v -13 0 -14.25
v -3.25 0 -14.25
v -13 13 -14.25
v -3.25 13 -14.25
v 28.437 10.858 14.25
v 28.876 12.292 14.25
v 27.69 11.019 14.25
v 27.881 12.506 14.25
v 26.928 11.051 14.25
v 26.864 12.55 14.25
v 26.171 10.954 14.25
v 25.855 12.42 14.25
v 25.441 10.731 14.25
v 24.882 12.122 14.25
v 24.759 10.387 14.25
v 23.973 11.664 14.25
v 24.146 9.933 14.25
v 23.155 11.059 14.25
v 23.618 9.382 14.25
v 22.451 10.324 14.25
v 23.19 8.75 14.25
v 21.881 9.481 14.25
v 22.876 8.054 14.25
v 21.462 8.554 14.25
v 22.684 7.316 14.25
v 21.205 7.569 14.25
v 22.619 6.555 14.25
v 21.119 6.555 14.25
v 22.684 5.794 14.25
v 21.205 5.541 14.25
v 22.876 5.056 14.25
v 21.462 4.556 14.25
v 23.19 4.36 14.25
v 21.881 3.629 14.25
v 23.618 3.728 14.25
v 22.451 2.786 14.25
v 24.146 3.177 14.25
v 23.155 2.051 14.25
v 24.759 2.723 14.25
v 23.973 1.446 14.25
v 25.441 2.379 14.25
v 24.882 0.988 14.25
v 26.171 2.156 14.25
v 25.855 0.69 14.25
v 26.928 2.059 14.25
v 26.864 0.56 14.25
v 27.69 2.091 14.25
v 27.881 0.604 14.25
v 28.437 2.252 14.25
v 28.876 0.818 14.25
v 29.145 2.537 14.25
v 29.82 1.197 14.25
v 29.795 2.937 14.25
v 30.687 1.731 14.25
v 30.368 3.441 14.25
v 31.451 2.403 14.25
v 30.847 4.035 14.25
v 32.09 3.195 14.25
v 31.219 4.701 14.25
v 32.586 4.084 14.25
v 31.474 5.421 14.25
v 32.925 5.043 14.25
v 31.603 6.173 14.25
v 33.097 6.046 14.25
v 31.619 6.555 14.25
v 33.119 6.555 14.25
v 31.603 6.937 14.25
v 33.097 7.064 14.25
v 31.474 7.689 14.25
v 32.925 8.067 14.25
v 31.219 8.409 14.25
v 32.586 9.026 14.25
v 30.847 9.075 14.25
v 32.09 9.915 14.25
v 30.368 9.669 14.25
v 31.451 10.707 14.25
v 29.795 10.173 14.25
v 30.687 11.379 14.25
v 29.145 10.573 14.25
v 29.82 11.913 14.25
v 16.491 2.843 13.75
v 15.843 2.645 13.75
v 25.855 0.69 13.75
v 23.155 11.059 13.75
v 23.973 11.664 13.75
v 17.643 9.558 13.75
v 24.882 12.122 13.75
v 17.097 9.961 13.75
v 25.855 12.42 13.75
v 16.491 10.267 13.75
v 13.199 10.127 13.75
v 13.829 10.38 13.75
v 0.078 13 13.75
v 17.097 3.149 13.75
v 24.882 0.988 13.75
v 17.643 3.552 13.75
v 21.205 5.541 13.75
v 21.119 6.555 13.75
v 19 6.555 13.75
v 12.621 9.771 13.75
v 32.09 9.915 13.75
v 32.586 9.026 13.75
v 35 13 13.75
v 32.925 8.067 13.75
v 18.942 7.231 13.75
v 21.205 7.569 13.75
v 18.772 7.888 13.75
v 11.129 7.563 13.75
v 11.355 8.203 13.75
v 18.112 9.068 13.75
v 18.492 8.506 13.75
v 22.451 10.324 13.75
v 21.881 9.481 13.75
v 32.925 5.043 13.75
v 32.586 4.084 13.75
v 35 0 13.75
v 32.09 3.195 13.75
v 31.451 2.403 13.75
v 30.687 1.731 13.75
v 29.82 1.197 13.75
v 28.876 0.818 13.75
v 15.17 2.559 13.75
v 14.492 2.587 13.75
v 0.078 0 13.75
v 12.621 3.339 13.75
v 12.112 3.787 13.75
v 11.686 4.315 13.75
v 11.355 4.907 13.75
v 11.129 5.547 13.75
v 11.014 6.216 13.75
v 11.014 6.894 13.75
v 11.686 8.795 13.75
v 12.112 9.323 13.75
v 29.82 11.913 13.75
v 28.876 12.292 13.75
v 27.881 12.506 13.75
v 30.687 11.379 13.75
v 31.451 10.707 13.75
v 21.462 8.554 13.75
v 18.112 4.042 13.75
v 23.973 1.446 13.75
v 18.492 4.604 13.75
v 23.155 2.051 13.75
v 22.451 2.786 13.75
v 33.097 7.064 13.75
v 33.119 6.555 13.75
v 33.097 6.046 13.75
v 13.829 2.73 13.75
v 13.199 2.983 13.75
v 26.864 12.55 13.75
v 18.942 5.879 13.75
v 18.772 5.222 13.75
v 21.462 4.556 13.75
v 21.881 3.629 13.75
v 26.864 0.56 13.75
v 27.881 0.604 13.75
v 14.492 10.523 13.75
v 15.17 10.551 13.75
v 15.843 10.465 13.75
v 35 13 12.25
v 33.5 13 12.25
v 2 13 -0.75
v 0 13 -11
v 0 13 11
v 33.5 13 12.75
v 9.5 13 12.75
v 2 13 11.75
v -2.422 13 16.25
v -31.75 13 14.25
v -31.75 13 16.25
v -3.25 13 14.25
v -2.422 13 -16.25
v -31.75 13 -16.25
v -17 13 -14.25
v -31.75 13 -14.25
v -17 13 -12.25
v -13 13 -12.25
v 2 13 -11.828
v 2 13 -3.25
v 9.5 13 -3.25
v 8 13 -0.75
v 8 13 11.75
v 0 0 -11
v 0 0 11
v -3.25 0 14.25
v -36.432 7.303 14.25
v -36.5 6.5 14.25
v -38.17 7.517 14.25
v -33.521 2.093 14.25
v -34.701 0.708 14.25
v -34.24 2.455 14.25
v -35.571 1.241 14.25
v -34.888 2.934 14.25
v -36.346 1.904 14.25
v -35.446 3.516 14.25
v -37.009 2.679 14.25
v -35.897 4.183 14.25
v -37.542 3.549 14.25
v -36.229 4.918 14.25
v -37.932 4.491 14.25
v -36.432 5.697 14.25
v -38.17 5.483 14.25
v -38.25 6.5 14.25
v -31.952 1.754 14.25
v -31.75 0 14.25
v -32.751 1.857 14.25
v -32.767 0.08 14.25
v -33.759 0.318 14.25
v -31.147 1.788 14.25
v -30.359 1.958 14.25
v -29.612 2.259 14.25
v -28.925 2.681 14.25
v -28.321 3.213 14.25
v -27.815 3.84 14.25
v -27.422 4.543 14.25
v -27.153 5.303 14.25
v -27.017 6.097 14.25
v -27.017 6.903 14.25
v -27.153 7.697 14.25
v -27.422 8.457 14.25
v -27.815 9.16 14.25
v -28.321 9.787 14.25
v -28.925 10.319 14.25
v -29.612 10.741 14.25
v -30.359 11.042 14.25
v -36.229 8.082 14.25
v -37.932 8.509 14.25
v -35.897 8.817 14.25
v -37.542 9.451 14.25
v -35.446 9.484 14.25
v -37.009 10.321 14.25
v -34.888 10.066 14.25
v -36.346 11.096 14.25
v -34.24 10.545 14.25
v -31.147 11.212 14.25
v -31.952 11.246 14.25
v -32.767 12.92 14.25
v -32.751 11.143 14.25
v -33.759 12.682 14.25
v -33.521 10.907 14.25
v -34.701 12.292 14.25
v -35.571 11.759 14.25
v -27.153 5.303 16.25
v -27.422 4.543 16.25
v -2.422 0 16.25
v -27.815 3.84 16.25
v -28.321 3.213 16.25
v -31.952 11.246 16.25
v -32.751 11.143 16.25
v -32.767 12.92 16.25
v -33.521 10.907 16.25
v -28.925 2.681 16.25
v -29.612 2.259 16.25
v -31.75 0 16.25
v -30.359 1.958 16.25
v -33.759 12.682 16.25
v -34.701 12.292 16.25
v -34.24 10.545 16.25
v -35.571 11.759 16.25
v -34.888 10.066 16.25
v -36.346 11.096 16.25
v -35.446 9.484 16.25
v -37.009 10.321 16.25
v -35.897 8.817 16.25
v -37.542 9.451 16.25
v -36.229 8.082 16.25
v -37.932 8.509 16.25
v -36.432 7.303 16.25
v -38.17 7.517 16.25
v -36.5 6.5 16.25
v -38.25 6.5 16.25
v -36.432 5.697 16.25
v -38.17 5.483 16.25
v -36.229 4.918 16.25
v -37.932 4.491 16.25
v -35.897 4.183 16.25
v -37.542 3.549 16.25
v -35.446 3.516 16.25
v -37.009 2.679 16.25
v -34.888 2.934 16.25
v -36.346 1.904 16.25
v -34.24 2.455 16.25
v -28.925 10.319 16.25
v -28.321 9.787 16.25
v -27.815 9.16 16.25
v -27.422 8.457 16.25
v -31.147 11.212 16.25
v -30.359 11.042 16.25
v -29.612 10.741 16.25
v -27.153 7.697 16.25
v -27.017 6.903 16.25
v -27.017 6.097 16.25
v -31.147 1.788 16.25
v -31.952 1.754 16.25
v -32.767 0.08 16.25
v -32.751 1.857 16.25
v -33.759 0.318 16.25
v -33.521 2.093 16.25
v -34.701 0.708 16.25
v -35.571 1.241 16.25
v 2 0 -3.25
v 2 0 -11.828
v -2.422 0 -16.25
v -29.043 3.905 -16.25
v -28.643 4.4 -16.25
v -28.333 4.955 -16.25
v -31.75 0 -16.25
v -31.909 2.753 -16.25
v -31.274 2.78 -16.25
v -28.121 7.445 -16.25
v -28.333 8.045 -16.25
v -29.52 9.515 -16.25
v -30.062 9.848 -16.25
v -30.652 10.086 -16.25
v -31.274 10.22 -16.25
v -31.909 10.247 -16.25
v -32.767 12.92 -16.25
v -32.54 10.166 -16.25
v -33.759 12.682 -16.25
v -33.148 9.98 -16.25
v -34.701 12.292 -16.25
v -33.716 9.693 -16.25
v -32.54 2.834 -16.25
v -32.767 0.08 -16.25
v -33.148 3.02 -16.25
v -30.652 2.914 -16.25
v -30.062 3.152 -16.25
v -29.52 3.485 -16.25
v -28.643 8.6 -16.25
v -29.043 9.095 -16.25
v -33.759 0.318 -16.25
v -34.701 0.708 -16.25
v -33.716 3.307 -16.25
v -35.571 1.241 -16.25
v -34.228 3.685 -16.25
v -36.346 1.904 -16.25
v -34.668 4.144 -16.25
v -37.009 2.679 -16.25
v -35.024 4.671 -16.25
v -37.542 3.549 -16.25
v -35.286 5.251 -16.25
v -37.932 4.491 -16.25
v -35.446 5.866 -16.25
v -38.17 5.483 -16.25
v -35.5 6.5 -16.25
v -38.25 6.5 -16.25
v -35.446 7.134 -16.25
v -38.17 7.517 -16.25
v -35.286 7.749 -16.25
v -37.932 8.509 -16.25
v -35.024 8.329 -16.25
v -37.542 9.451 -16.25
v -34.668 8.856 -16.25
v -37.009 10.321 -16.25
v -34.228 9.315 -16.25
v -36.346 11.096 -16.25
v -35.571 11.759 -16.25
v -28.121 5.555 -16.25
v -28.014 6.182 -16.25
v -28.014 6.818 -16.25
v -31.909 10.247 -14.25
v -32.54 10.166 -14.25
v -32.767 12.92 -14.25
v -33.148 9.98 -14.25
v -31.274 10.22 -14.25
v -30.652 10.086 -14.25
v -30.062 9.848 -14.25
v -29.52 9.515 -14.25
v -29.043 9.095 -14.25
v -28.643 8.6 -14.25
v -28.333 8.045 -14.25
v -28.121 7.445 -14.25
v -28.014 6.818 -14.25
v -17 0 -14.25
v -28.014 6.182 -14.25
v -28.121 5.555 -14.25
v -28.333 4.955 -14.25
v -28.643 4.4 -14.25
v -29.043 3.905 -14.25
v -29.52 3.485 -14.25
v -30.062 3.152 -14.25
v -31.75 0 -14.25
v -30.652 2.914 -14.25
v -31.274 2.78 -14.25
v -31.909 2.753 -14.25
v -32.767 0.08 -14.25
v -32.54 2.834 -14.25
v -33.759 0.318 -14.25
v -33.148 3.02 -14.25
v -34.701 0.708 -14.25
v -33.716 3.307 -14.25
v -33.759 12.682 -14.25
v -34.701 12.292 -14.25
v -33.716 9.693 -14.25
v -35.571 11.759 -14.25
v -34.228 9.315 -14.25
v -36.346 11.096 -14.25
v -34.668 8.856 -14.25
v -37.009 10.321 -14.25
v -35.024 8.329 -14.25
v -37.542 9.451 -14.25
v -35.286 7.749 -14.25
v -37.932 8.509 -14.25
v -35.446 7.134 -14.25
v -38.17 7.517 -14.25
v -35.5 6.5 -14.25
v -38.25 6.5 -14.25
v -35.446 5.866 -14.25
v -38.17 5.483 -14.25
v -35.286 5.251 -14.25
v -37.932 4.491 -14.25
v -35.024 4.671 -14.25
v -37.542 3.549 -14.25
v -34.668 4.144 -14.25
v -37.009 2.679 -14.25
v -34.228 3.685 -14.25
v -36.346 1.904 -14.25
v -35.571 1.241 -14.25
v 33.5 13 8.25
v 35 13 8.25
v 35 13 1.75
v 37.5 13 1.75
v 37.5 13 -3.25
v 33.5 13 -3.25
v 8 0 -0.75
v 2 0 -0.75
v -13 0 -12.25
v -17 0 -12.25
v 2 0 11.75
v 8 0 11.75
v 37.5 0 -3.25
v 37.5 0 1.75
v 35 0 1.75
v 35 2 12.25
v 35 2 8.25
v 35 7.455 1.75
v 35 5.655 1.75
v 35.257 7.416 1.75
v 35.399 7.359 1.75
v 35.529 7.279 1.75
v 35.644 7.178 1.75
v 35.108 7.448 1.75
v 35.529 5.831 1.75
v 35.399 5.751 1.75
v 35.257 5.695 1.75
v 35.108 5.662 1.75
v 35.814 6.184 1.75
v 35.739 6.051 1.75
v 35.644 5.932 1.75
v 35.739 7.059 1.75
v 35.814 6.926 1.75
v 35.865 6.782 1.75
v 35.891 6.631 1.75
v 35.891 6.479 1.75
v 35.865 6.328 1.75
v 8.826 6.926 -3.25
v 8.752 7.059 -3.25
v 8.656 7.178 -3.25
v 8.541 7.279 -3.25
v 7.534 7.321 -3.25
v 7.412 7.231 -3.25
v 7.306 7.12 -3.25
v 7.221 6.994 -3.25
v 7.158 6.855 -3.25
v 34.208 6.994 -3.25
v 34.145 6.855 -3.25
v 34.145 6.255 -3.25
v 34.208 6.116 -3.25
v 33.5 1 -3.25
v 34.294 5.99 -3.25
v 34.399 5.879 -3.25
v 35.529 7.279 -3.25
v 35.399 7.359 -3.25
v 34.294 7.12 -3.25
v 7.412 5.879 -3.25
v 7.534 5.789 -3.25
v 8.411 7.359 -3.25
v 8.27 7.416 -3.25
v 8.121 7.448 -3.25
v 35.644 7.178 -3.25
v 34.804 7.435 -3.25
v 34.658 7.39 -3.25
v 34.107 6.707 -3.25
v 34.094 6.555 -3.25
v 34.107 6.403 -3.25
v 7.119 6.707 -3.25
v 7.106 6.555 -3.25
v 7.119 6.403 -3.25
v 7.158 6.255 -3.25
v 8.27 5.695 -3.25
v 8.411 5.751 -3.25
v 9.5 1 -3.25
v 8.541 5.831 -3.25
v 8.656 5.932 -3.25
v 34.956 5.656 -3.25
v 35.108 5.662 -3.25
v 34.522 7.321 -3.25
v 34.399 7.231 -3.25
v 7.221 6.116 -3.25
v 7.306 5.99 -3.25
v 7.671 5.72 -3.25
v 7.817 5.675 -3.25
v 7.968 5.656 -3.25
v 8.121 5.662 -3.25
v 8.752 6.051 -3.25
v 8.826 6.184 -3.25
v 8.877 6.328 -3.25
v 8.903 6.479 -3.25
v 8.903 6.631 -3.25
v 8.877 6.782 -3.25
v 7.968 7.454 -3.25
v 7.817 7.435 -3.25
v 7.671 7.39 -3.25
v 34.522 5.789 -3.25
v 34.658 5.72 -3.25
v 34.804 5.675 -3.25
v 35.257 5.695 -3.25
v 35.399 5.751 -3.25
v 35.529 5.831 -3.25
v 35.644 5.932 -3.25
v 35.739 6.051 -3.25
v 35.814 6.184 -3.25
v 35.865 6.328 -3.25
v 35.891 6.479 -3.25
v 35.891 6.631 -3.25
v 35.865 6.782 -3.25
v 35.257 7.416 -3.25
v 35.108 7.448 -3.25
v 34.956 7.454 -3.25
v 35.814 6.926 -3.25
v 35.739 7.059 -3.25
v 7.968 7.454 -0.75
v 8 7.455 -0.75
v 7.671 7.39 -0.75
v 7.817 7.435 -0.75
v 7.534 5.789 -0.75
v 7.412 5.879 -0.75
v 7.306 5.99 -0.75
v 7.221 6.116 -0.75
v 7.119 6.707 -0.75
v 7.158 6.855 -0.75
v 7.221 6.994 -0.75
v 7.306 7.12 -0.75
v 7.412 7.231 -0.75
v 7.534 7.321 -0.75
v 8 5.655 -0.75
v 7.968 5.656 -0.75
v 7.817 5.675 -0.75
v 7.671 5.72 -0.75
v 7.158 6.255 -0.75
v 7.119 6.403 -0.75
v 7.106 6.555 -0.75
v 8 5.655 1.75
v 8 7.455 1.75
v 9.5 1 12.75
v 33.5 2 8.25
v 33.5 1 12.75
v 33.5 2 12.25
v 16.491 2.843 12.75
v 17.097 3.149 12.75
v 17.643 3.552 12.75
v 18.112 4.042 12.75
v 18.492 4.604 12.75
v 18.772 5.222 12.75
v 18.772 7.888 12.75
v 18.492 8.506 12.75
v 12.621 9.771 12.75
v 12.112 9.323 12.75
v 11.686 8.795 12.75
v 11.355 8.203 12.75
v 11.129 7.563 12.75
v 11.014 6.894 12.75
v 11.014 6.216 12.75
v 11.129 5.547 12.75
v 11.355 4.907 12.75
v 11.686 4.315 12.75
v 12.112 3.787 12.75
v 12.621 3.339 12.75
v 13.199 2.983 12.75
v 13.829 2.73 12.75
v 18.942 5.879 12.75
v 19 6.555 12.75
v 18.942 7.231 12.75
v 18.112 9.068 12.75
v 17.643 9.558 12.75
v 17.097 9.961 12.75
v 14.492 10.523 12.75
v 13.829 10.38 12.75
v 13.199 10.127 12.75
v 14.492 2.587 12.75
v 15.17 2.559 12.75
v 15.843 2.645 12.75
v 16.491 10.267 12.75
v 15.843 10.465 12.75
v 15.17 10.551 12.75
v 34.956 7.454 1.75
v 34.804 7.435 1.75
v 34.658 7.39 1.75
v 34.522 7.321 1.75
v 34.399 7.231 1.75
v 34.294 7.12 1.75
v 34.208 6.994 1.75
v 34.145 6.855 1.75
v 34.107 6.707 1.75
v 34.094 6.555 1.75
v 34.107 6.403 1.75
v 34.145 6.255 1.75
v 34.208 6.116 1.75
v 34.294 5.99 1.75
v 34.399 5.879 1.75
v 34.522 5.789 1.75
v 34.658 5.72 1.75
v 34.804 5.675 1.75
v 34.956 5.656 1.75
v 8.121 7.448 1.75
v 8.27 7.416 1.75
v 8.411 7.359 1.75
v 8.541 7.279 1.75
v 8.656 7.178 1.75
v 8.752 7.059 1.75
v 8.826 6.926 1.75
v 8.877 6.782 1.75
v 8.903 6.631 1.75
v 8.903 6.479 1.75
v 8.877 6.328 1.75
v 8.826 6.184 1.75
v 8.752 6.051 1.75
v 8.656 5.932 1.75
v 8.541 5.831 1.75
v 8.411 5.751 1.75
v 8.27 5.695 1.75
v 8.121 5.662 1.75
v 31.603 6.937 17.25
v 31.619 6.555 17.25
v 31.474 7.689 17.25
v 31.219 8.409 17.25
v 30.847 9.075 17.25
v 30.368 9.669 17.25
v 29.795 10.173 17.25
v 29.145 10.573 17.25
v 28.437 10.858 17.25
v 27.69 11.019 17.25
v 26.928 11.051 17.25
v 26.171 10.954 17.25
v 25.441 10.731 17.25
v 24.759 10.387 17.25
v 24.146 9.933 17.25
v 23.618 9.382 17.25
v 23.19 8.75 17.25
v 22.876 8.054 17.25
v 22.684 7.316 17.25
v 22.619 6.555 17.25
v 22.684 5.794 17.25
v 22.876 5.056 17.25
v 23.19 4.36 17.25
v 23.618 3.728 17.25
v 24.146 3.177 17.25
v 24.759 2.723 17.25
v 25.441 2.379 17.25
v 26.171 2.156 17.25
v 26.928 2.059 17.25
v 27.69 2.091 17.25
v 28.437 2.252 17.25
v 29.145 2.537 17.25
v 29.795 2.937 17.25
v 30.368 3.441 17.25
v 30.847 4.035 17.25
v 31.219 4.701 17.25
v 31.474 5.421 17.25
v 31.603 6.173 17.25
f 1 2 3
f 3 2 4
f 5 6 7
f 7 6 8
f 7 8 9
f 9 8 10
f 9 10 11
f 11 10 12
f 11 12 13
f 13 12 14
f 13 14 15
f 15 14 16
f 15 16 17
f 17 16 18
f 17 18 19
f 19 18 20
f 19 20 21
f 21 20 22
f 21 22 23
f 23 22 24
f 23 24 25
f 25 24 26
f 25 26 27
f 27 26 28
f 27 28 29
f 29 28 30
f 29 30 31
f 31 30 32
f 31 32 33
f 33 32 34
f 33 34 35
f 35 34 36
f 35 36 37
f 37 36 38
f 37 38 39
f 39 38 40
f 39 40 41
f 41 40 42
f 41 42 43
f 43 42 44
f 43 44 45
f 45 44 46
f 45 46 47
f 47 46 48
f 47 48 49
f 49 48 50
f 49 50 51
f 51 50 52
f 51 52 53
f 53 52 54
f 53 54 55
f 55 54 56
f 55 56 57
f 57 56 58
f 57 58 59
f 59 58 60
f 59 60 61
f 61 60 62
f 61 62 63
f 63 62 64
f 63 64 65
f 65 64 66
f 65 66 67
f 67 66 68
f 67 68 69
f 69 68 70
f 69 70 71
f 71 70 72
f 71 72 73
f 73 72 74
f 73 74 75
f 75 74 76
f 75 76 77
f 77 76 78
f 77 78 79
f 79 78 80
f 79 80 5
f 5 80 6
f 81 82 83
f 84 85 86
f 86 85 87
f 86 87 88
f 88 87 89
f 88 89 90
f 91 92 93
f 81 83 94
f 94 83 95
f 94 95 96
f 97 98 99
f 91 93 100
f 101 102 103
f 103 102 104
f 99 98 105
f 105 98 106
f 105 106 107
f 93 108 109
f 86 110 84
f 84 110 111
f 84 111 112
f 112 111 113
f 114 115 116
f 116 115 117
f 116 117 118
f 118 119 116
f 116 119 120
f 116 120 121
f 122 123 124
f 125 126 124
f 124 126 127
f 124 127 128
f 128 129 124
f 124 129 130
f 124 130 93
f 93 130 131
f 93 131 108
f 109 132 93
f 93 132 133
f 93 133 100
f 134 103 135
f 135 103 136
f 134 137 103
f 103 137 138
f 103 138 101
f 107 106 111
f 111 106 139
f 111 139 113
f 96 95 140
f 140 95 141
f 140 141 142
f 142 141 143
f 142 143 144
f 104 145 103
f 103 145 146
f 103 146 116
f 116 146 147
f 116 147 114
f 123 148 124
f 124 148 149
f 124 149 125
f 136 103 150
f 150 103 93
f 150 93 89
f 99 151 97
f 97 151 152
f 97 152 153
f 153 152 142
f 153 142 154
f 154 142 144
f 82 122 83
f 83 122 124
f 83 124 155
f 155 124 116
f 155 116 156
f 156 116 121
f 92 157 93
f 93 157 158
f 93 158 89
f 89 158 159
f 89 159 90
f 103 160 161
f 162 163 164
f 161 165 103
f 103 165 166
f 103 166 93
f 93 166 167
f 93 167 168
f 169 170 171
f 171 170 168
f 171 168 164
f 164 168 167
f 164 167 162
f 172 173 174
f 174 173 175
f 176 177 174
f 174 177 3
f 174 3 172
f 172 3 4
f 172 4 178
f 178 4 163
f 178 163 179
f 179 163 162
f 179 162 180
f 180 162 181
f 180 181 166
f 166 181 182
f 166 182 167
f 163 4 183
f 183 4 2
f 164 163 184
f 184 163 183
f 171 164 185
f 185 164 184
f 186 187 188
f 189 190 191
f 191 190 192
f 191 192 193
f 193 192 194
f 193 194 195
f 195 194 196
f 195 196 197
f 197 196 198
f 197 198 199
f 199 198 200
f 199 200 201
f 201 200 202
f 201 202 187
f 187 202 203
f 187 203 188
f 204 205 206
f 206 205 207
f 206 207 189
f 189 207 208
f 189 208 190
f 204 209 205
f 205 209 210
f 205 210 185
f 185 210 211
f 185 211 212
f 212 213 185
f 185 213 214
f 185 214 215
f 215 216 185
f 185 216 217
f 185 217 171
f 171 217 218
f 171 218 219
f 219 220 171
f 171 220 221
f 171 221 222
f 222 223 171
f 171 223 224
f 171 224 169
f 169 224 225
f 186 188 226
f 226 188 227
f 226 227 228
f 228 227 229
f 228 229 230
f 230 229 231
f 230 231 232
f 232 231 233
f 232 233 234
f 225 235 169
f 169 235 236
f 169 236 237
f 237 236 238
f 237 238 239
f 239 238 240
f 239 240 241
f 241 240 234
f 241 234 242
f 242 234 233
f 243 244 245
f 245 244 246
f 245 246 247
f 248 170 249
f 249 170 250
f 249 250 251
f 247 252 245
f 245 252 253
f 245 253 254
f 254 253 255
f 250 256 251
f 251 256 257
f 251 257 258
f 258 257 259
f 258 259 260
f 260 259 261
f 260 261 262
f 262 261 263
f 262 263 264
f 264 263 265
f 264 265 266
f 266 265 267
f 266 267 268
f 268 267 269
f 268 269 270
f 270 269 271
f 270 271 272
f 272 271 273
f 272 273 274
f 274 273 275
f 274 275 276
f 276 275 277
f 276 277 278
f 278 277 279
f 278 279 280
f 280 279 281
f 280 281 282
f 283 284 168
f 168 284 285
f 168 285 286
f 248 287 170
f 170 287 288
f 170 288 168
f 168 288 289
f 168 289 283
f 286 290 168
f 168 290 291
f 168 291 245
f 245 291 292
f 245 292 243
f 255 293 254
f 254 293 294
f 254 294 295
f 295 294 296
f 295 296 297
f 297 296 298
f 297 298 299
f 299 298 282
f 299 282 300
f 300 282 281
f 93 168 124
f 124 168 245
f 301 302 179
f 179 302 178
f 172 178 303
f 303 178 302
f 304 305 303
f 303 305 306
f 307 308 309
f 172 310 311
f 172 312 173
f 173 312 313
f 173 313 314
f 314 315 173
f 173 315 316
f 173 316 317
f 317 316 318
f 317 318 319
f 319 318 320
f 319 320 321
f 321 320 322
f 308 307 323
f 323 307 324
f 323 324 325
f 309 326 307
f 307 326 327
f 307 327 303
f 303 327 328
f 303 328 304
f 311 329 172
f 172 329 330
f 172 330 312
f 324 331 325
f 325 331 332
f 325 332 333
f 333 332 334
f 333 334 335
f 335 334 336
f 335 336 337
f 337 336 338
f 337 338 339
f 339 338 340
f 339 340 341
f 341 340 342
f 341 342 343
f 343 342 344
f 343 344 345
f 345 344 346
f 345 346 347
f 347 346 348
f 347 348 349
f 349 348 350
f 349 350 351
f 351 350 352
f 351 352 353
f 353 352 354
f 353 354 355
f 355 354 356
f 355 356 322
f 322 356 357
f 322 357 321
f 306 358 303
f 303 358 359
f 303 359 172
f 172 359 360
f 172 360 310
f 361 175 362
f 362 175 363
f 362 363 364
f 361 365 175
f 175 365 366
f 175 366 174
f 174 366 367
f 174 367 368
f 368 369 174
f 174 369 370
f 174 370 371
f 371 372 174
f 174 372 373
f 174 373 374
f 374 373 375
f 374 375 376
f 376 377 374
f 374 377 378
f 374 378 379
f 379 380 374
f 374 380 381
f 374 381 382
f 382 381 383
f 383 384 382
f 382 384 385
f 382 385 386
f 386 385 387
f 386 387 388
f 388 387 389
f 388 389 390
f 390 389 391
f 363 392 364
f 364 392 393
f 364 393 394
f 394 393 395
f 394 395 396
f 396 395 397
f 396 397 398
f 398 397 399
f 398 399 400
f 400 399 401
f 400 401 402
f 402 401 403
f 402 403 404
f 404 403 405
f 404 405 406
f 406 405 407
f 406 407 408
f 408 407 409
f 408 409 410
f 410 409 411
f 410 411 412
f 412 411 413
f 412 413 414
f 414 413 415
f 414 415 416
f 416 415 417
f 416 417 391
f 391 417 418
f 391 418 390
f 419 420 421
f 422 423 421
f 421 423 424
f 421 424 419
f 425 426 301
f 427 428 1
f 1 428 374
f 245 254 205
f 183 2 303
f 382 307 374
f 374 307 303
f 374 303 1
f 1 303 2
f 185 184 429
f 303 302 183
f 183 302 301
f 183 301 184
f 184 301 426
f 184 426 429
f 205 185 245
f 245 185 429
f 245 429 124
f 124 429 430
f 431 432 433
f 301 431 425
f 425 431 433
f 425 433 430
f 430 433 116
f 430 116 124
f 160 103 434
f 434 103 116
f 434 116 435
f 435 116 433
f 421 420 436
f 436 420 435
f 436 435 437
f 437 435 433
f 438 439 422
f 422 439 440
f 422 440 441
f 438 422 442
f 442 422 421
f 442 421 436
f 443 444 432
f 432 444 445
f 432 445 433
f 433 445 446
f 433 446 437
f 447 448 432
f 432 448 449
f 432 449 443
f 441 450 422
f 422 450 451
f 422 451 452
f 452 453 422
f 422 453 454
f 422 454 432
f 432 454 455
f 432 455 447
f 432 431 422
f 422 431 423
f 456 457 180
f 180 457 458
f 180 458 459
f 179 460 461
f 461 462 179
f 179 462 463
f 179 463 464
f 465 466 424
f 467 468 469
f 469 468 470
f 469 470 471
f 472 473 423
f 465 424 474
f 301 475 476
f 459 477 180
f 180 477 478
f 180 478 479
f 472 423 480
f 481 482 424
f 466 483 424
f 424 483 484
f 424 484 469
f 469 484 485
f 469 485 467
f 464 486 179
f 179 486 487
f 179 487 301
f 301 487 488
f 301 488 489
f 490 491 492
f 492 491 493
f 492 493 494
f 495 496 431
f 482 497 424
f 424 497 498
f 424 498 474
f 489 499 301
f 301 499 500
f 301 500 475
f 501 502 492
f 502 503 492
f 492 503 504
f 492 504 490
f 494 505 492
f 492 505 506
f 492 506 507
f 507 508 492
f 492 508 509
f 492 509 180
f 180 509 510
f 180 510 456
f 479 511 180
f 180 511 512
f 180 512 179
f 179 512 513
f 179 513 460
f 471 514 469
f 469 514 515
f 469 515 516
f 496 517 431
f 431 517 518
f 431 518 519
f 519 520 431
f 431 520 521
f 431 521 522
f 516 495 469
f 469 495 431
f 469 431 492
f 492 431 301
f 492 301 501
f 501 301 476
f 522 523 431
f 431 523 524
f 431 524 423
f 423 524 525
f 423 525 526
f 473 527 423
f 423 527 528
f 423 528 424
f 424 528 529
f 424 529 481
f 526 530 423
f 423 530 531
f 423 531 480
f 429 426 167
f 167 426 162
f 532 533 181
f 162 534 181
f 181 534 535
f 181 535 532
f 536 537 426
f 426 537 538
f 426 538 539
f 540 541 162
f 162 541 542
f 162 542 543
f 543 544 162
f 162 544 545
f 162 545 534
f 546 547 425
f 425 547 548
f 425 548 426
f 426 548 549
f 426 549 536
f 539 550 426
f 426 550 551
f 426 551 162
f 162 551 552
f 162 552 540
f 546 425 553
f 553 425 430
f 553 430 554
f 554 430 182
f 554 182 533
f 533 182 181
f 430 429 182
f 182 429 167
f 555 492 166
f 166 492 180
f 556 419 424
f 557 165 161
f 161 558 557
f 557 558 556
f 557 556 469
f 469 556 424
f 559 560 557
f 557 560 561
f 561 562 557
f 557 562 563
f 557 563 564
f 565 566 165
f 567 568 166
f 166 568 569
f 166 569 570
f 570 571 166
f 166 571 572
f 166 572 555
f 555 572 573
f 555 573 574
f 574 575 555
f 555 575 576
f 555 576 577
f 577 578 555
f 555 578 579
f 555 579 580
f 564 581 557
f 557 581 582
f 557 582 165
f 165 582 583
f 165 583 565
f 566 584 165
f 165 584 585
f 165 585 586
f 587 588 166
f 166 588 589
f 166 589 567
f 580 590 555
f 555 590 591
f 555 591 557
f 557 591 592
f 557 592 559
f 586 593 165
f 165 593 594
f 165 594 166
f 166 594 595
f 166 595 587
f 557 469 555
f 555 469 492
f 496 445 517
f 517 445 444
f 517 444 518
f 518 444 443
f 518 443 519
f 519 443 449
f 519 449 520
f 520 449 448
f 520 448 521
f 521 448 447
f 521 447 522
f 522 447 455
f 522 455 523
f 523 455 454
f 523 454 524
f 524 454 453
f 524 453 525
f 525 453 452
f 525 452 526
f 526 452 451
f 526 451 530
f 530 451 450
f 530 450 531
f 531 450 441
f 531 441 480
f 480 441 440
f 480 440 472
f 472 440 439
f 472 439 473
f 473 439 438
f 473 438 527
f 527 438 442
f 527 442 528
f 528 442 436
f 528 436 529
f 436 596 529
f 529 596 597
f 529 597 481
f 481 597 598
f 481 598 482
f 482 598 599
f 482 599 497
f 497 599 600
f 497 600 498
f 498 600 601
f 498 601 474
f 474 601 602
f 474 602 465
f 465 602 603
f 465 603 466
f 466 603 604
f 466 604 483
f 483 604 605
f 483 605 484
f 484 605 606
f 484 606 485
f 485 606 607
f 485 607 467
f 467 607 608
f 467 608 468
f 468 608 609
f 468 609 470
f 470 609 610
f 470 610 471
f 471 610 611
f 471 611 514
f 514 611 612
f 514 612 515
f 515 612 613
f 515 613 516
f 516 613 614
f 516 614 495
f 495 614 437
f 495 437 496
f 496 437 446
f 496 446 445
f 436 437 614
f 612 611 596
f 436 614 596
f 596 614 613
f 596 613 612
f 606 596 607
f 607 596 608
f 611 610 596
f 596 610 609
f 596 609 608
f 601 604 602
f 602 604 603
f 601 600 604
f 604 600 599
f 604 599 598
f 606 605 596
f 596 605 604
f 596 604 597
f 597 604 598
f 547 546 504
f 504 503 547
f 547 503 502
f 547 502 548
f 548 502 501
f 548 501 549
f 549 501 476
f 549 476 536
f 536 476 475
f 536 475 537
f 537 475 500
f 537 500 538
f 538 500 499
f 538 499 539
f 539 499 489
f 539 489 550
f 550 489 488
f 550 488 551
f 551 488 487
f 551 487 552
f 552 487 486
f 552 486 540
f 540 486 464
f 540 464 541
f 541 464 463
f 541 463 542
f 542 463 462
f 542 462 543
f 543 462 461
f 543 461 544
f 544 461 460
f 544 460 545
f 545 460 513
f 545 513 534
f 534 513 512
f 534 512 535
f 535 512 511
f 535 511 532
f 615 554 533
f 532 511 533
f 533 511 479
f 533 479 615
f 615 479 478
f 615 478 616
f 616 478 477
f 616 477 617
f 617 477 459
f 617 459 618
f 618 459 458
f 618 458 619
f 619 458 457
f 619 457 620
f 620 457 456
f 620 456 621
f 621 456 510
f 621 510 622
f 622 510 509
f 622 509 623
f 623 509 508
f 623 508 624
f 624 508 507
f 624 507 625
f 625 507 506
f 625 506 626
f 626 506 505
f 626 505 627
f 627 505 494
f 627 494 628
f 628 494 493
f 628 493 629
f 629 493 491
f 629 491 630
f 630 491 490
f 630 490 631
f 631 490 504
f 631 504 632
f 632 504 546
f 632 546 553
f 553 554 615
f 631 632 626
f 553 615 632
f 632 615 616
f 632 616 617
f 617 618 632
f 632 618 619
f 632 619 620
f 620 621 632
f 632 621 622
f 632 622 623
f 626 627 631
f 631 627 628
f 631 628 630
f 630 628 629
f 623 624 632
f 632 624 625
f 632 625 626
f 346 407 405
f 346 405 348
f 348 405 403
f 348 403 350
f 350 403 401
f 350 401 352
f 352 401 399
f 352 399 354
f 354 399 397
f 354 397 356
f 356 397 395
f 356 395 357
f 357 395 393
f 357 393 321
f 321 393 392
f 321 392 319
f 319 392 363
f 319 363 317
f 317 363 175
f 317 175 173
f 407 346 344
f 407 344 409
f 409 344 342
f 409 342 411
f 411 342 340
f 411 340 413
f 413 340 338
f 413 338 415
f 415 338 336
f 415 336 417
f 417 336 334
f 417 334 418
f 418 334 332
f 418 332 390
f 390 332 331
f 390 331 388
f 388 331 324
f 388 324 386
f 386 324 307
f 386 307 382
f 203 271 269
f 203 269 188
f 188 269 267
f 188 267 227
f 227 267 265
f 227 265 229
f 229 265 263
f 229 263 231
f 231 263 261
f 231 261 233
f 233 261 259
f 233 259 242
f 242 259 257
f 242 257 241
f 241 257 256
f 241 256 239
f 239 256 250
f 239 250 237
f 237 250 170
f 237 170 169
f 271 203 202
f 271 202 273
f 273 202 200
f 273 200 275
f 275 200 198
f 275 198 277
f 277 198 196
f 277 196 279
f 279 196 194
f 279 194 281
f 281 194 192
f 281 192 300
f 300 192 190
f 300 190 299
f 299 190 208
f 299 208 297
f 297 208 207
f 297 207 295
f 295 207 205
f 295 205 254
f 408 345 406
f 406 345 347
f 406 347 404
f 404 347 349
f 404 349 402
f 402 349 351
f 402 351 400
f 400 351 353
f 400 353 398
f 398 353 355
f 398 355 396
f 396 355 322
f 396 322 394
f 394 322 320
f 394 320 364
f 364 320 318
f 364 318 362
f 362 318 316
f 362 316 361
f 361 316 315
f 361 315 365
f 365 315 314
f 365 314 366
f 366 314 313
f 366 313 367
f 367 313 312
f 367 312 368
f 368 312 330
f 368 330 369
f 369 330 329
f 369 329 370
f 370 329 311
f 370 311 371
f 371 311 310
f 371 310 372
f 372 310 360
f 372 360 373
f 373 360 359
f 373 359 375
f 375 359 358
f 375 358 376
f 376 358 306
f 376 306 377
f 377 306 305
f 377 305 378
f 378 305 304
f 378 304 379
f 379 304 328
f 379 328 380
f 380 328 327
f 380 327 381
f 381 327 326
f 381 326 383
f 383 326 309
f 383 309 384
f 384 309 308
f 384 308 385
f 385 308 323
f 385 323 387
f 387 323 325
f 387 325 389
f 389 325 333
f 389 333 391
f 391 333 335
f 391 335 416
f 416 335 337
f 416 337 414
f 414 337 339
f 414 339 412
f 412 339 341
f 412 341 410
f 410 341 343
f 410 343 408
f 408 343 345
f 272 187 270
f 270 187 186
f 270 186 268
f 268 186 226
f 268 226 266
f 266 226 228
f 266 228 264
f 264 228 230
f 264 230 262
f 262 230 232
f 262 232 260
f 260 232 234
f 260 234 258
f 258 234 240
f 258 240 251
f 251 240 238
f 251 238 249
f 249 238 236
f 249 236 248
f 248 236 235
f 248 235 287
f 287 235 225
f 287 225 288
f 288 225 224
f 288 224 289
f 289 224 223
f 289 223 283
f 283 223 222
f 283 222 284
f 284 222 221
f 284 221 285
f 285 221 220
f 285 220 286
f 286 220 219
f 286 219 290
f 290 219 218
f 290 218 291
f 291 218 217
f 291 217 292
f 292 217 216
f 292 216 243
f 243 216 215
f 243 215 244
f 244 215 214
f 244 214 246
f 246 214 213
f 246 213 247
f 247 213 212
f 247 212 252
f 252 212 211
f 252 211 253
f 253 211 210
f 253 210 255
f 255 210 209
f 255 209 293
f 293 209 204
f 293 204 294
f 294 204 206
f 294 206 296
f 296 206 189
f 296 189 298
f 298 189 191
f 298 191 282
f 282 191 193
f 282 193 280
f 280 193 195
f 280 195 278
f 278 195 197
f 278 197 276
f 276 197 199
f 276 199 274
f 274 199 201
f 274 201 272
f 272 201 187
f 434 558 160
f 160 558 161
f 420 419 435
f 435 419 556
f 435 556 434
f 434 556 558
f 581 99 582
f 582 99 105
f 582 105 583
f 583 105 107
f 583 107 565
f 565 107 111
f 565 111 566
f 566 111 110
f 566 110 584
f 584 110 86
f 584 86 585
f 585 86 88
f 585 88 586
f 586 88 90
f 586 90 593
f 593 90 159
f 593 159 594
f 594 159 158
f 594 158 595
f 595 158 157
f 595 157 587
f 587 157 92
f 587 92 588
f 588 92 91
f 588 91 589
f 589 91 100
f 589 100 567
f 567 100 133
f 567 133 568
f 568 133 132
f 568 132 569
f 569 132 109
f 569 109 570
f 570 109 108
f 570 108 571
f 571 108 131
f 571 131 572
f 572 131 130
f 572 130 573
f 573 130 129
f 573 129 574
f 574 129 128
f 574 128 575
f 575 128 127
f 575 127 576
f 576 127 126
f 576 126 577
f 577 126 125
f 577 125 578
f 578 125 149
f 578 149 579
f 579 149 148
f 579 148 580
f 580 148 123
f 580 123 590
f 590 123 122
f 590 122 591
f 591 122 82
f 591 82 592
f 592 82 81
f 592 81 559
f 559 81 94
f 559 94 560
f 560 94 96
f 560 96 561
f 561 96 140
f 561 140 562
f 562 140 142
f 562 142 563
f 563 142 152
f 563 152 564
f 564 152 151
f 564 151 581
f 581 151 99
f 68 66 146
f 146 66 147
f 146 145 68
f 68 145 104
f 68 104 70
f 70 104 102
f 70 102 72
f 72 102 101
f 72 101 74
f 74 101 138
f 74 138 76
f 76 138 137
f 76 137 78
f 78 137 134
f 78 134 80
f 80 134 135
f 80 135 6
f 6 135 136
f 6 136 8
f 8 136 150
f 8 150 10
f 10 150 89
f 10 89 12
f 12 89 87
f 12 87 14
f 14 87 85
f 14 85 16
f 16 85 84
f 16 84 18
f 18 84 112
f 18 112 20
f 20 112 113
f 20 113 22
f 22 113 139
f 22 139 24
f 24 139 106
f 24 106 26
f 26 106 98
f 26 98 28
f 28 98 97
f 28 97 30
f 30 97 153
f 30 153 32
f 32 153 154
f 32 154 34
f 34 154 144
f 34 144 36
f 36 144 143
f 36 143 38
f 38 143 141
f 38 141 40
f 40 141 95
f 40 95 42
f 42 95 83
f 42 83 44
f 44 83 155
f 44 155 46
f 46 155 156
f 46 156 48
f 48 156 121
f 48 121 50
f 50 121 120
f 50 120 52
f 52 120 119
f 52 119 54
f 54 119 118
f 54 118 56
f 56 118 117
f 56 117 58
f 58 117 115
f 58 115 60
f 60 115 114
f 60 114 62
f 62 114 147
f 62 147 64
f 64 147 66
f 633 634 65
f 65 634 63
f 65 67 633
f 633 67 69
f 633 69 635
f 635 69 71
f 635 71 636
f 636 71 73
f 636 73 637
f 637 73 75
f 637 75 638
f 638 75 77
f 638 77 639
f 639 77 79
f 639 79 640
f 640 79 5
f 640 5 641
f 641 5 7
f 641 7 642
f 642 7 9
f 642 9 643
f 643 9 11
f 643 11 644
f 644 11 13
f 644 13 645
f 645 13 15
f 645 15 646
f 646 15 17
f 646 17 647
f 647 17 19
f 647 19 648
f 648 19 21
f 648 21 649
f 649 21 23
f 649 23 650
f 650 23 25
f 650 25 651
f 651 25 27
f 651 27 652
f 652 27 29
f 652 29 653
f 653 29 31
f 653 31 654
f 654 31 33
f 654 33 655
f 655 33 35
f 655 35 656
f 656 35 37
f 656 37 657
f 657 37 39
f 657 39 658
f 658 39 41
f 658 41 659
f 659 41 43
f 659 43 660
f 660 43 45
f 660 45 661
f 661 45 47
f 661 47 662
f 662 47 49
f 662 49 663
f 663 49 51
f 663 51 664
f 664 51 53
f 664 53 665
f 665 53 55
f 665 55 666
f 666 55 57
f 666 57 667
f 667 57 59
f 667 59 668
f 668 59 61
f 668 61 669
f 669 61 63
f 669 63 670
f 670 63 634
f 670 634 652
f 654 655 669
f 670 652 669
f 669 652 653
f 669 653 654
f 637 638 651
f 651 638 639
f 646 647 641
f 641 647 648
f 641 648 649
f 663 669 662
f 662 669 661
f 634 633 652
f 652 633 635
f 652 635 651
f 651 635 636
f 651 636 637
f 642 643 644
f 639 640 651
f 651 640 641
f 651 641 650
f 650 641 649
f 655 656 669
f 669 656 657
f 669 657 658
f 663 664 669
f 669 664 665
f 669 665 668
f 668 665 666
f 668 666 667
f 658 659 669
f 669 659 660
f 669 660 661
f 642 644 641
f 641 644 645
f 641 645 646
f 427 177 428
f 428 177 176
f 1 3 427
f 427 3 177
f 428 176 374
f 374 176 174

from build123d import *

# Parameters (mm, degrees)
P_IDAT_VYSUNUT_M1_DEPTH  = 13
P_IDAT_VYSUNUT_M2_DEPTH  = 13
SKICA3_W                 = 6
SKICA3_H                 = 12.5
ODEBRAT_VYSUNUT_M1_DEPTH = 44.544517451
SKICA4_W                 = 24
SKICA4_H                 = 16
ODEBRAT_VYSUNUT_M2_DEPTH = 12
SKICA5_R                 = 0.9
ODEBRAT_VYSUNUT_M3_DEPTH = 5
ZAOBLIT1_R               = 6.5
SKICA6_R                 = 3.75
ODEBRAT_VYSUNUT_M4_DEPTH = 5
SKICA7_R                 = 4.75
ODEBRAT_VYSUNUT_M5_DEPTH = 5
SKICA8_W                 = 4
SKICA8_H                 = 11
ODEBRAT_VYSUNUT_M6_DEPTH = 5
SKICA9_R                 = 4
ODEBRAT_VYSUNUT_M7_DEPTH = 10
SKICA10_R                = 6
P_IDAT_VYSUNUT_M3_DEPTH  = 0.5
SKICA11_R                = 4.5
P_IDAT_VYSUNUT_M4_DEPTH  = 3
SKICA12_W                = 4
SKICA12_H                = 2
P_IDAT_VYSUNUT_M5_DEPTH  = 13


with BuildPart() as part:
    # Skica1 → Přidat vysunutím1 (new body)
    with BuildSketch(Plane(origin=(0, 0, 0), x_dir=(1, 0, 0), z_dir=(0, 1, 0))):
        Polygon((0, -11), (0, 11), (-3.25, 14.25), (-38.25, 14.25), (-38.25, 16.25), (-2.421572875, 16.25), (2, 11.828427125), (2, -11.828427125), (-2.421572875, -16.25), (-38.25, -16.25), (-38.25, -14.25), (-3.25, -14.25), align=None)
    extrude(amount=P_IDAT_VYSUNUT_M1_DEPTH)

    # Skica2 → Přidat vysunutím2 (add)
    with BuildSketch(Plane.XZ):
        Polygon((0.078427125, 13.75), (35, 13.75), (35, 1.75), (37.5, 1.75), (37.5, -3.25), (2, -3.25), (2, 11.828427125), align=None)
    extrude(amount=-P_IDAT_VYSUNUT_M2_DEPTH)

    # Skica3 → Odebrat vysunutím1 (cut, through all)
    with BuildSketch(Plane(origin=(0, 13, 0), x_dir=(1, 0, 0), z_dir=(0, 1, 0))):
        with Locations((5, -5.5)):
            Rectangle(SKICA3_W, SKICA3_H)
    extrude(amount=-ODEBRAT_VYSUNUT_M1_DEPTH, mode=Mode.SUBTRACT)

    # Skica4 → Odebrat vysunutím2 (cut)
    with BuildSketch(Plane(origin=(0, 13, 0), x_dir=(1, 0, 0), z_dir=(0, 1, 0))):
        with Locations((21.5, -4.75)):
            Rectangle(SKICA4_W, SKICA4_H)
    extrude(amount=-ODEBRAT_VYSUNUT_M2_DEPTH, mode=Mode.SUBTRACT)

    # Skica5 → Odebrat vysunutím3 (cut)
    with BuildSketch(Plane(origin=(0, 0, -3.25), x_dir=(-1, 0, 0), z_dir=(0, 0, -1))):
        with Locations((-34.993787626, 6.555058734)):
            Circle(SKICA5_R)
        with Locations((-8.006314188, 6.5550616)):
            Circle(SKICA5_R)
    extrude(amount=-ODEBRAT_VYSUNUT_M3_DEPTH, mode=Mode.SUBTRACT)

    # Zaoblit1
    zaoblit1_edges = [part.edges().sort_by_distance(p)[0] for p in [
        (-38.25, 0, -15.25),
        (-38.25, 0, 15.25),
        (-38.25, 13, 15.25),
        (-38.25, 13, -15.25),
    ]]
    fillet(zaoblit1_edges, radius=ZAOBLIT1_R - 0.0001)  # a hair under: the kernel refuses the full size

    # Skica6 → Odebrat vysunutím4 (cut)
    with BuildSketch(Plane(origin=(0, 0, -16.25), x_dir=(-1, 0, 0), z_dir=(0, 0, -1))):
        with Locations((31.75, 6.5)):
            Circle(SKICA6_R)
    extrude(amount=-ODEBRAT_VYSUNUT_M4_DEPTH, mode=Mode.SUBTRACT)

    # Skica7 → Odebrat vysunutím5 (cut)
    with BuildSketch(Plane(origin=(0, 0, 14.25), x_dir=(-1, 0, 0), z_dir=(0, 0, -1))):
        with Locations((31.75, 6.5)):
            Circle(SKICA7_R)
    extrude(amount=-ODEBRAT_VYSUNUT_M5_DEPTH, mode=Mode.SUBTRACT)

    # Skica8 → Odebrat vysunutím6 (cut)
    with BuildSketch(Plane(origin=(35, 0, 0), x_dir=(0, 0, -1), z_dir=(1, 0, 0))):
        with Locations((-10.25, 7.5)):
            Rectangle(SKICA8_W, SKICA8_H)
    extrude(amount=-ODEBRAT_VYSUNUT_M6_DEPTH, mode=Mode.SUBTRACT)

    # Skica9 → Odebrat vysunutím7 (cut)
    with BuildSketch(Plane.XY.offset(13.75)):
        with Locations((15, 6.554999832)):
            Circle(SKICA9_R)
    extrude(amount=-ODEBRAT_VYSUNUT_M7_DEPTH, mode=Mode.SUBTRACT)

    # Skica10 → Přidat vysunutím3 (add)
    with BuildSketch(Plane.XY.offset(13.75)):
        with Locations((27.118831388, 6.554999832)):
            Circle(SKICA10_R)
    extrude(amount=P_IDAT_VYSUNUT_M3_DEPTH)

    # Skica11 → Přidat vysunutím4 (add)
    with BuildSketch(Plane.XY.offset(14.25)):
        with Locations((27.118831388, 6.554999832)):
            Circle(SKICA11_R)
    extrude(amount=P_IDAT_VYSUNUT_M4_DEPTH)

    # Skica12 → Přidat vysunutím5 (add)
    with BuildSketch(Plane(origin=(0, 13, 0), x_dir=(1, 0, 0), z_dir=(0, 1, 0))):
        with Locations((-15, 13.25)):
            Rectangle(SKICA12_W, SKICA12_H)
    extrude(amount=-P_IDAT_VYSUNUT_M5_DEPTH)


solid = part.part
